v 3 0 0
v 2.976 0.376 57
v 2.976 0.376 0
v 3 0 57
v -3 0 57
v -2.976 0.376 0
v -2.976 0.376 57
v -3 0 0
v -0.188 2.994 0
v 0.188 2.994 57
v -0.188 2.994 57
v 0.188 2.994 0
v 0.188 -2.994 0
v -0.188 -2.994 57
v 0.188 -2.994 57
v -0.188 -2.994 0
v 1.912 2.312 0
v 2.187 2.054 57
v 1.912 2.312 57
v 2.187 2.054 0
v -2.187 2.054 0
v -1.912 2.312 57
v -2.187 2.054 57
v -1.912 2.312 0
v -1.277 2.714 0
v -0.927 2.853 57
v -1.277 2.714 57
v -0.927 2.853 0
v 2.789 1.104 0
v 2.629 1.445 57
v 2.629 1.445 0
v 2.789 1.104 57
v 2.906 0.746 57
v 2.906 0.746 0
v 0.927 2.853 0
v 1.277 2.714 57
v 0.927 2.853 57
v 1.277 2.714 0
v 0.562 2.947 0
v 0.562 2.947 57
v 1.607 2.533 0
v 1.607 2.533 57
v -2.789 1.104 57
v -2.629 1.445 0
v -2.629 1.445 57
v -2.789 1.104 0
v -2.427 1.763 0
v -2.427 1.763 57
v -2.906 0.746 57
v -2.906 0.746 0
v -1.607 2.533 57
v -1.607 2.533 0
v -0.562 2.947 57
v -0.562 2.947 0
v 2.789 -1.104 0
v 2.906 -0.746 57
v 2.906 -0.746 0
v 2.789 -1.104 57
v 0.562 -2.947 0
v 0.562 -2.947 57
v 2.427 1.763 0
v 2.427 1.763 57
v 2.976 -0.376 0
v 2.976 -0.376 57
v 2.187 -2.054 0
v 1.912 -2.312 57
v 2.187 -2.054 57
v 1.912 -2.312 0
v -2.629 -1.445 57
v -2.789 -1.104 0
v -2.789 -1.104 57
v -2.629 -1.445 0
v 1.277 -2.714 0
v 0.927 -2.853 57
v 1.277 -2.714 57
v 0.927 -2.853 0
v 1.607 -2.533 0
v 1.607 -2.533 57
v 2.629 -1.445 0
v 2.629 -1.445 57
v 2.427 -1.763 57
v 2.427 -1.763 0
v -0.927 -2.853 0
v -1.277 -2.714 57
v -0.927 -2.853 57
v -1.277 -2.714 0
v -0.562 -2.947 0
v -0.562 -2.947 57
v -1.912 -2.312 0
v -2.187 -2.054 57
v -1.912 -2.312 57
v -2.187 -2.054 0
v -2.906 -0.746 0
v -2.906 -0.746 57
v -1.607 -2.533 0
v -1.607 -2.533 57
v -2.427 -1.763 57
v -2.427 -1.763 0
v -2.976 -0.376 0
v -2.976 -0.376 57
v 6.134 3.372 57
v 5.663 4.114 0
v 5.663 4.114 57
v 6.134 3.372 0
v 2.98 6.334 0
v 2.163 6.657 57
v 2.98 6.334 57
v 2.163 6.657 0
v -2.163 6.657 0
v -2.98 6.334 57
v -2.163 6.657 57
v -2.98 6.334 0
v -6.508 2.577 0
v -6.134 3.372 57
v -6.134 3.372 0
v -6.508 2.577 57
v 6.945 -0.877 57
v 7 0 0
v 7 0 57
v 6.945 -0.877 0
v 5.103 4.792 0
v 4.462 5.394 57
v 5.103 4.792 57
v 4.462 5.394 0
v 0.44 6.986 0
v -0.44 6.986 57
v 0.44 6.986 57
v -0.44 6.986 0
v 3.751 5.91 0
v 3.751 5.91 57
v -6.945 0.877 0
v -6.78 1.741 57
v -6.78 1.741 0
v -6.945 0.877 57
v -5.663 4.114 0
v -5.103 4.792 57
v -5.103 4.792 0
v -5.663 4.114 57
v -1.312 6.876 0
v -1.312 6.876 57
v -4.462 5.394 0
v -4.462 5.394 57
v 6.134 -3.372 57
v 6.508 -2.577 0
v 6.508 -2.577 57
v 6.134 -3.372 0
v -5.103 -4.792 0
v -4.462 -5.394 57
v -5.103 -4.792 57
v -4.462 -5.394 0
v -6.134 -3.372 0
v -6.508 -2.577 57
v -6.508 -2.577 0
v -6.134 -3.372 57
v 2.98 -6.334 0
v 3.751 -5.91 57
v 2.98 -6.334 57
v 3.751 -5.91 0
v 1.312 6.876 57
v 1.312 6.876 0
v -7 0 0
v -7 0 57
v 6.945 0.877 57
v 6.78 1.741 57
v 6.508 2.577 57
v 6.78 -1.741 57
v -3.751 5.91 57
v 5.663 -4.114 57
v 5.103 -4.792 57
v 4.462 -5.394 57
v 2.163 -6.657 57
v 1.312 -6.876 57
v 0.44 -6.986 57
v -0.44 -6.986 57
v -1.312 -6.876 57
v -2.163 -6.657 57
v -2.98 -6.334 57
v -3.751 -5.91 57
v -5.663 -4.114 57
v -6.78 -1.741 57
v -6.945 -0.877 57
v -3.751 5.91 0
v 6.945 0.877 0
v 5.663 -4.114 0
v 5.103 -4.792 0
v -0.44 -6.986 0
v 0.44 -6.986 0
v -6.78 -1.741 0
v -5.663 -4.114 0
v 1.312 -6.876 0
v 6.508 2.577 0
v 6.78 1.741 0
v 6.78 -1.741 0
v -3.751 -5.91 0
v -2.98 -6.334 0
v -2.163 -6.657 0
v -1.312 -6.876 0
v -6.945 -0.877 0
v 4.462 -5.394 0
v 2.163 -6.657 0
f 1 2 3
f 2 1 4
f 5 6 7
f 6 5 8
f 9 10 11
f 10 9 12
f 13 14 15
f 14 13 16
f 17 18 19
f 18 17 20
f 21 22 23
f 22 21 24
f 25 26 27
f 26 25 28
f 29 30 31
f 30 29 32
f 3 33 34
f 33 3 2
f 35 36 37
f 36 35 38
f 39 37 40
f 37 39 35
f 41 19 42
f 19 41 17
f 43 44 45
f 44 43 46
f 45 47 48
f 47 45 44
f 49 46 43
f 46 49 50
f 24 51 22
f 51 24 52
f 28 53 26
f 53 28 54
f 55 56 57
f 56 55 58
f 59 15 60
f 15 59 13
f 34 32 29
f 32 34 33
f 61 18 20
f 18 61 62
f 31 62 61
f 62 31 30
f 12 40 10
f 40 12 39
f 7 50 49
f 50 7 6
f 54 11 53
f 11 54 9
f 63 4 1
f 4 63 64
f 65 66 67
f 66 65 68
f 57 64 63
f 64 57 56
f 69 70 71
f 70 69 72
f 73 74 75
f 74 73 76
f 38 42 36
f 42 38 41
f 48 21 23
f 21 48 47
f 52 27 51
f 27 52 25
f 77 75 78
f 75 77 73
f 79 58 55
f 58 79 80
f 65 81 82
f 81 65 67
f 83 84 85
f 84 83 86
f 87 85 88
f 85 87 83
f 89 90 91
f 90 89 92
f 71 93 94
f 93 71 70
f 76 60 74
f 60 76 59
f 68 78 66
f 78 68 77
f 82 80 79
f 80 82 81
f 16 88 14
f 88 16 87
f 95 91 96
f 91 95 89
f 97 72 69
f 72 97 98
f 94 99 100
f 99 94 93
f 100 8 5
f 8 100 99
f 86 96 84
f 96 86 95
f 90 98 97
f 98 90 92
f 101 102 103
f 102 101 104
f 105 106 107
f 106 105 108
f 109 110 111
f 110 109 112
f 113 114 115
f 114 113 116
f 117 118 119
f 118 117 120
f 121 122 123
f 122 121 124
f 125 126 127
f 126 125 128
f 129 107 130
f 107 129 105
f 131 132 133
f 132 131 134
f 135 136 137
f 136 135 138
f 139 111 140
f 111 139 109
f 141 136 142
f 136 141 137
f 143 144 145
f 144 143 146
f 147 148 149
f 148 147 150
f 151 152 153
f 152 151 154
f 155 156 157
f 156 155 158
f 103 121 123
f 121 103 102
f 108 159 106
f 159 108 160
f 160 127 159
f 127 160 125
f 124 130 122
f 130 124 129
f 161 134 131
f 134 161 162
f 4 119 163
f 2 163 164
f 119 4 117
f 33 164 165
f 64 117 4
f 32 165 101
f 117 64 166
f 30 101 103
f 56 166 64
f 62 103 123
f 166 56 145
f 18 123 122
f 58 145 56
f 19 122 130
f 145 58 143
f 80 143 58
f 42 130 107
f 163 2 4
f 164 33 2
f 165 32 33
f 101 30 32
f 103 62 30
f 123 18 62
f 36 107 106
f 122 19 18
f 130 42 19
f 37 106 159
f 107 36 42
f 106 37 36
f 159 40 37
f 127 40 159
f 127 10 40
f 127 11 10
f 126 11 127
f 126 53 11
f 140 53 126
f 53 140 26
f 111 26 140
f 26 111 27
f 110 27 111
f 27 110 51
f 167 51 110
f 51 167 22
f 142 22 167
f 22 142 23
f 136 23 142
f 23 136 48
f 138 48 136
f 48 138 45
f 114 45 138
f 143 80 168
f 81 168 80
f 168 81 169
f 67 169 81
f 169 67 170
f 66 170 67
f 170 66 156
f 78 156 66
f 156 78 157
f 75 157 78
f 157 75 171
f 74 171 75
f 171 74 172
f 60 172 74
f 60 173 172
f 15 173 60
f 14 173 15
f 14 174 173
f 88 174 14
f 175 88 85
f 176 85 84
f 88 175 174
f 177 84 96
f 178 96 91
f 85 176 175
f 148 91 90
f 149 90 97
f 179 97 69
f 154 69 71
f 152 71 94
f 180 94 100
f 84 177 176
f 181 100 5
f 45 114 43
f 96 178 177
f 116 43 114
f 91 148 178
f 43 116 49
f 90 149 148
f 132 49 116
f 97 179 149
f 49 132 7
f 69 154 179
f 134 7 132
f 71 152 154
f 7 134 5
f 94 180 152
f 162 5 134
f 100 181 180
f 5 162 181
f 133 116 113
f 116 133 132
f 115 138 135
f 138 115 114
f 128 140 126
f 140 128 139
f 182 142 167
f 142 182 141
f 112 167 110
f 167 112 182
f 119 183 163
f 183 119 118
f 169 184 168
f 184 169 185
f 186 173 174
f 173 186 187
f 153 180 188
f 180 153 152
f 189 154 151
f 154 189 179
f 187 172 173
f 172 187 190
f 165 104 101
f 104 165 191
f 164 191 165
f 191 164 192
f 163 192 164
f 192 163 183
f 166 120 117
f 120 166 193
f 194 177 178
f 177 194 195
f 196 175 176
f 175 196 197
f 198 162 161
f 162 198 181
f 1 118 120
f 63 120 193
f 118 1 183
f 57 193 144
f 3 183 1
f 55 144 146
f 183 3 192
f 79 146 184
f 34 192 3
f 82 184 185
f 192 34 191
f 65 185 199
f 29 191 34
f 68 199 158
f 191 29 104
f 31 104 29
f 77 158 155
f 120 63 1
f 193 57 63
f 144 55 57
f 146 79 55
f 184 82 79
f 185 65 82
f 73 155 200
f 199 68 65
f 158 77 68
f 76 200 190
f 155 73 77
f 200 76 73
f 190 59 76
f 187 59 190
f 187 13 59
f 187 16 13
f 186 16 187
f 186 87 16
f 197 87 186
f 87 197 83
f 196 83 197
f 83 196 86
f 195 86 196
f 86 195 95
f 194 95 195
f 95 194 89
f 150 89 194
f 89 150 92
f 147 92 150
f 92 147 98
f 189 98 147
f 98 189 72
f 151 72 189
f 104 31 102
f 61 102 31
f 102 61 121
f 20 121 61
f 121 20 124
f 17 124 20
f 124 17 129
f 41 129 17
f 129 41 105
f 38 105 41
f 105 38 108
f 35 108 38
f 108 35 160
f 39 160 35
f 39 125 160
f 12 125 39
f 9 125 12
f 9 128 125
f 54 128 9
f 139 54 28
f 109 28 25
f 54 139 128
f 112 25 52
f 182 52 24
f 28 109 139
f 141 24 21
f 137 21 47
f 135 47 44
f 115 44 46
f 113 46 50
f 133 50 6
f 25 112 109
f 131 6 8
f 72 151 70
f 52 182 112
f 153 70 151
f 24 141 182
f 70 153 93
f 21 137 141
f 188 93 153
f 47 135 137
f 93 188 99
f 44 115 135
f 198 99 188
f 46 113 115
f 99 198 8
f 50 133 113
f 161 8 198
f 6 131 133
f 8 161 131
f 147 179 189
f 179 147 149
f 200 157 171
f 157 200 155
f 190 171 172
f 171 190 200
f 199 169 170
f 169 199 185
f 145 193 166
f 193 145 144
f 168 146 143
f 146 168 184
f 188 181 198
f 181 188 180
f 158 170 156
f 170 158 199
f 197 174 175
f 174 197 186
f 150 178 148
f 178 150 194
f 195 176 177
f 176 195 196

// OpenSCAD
$fn = 50;


difference() {
	union() {
		*color(alpha = 1.0000000000, c = "gray") {
			translate(v = [0, 7, 0]) {
				linear_extrude(height = 1) {
					text(font = "Arial:style=Bold", halign = "center", size = 4.5000000000, text = "COMMENT plate main", valign = "center");
				}
			}
		}
		cylinder(h = 57, r = 7.0000000000);
	}
	union() {
		*color(alpha = 1.0000000000, c = "gray") {
			translate(v = [0, 7, 0]) {
				linear_extrude(height = 1) {
					text(font = "Arial:style=Bold", halign = "center", size = 4.5000000000, text = "COMMENT holes main", valign = "center");
				}
			}
		}
		translate(v = [0, 0, -100]) {
			cylinder(h = 200, r = 3.0000000000);
		}
		translate(v = [0, 0, -100]) {
			cylinder(h = 200, r = 1.5000000000);
		}
	}
}
